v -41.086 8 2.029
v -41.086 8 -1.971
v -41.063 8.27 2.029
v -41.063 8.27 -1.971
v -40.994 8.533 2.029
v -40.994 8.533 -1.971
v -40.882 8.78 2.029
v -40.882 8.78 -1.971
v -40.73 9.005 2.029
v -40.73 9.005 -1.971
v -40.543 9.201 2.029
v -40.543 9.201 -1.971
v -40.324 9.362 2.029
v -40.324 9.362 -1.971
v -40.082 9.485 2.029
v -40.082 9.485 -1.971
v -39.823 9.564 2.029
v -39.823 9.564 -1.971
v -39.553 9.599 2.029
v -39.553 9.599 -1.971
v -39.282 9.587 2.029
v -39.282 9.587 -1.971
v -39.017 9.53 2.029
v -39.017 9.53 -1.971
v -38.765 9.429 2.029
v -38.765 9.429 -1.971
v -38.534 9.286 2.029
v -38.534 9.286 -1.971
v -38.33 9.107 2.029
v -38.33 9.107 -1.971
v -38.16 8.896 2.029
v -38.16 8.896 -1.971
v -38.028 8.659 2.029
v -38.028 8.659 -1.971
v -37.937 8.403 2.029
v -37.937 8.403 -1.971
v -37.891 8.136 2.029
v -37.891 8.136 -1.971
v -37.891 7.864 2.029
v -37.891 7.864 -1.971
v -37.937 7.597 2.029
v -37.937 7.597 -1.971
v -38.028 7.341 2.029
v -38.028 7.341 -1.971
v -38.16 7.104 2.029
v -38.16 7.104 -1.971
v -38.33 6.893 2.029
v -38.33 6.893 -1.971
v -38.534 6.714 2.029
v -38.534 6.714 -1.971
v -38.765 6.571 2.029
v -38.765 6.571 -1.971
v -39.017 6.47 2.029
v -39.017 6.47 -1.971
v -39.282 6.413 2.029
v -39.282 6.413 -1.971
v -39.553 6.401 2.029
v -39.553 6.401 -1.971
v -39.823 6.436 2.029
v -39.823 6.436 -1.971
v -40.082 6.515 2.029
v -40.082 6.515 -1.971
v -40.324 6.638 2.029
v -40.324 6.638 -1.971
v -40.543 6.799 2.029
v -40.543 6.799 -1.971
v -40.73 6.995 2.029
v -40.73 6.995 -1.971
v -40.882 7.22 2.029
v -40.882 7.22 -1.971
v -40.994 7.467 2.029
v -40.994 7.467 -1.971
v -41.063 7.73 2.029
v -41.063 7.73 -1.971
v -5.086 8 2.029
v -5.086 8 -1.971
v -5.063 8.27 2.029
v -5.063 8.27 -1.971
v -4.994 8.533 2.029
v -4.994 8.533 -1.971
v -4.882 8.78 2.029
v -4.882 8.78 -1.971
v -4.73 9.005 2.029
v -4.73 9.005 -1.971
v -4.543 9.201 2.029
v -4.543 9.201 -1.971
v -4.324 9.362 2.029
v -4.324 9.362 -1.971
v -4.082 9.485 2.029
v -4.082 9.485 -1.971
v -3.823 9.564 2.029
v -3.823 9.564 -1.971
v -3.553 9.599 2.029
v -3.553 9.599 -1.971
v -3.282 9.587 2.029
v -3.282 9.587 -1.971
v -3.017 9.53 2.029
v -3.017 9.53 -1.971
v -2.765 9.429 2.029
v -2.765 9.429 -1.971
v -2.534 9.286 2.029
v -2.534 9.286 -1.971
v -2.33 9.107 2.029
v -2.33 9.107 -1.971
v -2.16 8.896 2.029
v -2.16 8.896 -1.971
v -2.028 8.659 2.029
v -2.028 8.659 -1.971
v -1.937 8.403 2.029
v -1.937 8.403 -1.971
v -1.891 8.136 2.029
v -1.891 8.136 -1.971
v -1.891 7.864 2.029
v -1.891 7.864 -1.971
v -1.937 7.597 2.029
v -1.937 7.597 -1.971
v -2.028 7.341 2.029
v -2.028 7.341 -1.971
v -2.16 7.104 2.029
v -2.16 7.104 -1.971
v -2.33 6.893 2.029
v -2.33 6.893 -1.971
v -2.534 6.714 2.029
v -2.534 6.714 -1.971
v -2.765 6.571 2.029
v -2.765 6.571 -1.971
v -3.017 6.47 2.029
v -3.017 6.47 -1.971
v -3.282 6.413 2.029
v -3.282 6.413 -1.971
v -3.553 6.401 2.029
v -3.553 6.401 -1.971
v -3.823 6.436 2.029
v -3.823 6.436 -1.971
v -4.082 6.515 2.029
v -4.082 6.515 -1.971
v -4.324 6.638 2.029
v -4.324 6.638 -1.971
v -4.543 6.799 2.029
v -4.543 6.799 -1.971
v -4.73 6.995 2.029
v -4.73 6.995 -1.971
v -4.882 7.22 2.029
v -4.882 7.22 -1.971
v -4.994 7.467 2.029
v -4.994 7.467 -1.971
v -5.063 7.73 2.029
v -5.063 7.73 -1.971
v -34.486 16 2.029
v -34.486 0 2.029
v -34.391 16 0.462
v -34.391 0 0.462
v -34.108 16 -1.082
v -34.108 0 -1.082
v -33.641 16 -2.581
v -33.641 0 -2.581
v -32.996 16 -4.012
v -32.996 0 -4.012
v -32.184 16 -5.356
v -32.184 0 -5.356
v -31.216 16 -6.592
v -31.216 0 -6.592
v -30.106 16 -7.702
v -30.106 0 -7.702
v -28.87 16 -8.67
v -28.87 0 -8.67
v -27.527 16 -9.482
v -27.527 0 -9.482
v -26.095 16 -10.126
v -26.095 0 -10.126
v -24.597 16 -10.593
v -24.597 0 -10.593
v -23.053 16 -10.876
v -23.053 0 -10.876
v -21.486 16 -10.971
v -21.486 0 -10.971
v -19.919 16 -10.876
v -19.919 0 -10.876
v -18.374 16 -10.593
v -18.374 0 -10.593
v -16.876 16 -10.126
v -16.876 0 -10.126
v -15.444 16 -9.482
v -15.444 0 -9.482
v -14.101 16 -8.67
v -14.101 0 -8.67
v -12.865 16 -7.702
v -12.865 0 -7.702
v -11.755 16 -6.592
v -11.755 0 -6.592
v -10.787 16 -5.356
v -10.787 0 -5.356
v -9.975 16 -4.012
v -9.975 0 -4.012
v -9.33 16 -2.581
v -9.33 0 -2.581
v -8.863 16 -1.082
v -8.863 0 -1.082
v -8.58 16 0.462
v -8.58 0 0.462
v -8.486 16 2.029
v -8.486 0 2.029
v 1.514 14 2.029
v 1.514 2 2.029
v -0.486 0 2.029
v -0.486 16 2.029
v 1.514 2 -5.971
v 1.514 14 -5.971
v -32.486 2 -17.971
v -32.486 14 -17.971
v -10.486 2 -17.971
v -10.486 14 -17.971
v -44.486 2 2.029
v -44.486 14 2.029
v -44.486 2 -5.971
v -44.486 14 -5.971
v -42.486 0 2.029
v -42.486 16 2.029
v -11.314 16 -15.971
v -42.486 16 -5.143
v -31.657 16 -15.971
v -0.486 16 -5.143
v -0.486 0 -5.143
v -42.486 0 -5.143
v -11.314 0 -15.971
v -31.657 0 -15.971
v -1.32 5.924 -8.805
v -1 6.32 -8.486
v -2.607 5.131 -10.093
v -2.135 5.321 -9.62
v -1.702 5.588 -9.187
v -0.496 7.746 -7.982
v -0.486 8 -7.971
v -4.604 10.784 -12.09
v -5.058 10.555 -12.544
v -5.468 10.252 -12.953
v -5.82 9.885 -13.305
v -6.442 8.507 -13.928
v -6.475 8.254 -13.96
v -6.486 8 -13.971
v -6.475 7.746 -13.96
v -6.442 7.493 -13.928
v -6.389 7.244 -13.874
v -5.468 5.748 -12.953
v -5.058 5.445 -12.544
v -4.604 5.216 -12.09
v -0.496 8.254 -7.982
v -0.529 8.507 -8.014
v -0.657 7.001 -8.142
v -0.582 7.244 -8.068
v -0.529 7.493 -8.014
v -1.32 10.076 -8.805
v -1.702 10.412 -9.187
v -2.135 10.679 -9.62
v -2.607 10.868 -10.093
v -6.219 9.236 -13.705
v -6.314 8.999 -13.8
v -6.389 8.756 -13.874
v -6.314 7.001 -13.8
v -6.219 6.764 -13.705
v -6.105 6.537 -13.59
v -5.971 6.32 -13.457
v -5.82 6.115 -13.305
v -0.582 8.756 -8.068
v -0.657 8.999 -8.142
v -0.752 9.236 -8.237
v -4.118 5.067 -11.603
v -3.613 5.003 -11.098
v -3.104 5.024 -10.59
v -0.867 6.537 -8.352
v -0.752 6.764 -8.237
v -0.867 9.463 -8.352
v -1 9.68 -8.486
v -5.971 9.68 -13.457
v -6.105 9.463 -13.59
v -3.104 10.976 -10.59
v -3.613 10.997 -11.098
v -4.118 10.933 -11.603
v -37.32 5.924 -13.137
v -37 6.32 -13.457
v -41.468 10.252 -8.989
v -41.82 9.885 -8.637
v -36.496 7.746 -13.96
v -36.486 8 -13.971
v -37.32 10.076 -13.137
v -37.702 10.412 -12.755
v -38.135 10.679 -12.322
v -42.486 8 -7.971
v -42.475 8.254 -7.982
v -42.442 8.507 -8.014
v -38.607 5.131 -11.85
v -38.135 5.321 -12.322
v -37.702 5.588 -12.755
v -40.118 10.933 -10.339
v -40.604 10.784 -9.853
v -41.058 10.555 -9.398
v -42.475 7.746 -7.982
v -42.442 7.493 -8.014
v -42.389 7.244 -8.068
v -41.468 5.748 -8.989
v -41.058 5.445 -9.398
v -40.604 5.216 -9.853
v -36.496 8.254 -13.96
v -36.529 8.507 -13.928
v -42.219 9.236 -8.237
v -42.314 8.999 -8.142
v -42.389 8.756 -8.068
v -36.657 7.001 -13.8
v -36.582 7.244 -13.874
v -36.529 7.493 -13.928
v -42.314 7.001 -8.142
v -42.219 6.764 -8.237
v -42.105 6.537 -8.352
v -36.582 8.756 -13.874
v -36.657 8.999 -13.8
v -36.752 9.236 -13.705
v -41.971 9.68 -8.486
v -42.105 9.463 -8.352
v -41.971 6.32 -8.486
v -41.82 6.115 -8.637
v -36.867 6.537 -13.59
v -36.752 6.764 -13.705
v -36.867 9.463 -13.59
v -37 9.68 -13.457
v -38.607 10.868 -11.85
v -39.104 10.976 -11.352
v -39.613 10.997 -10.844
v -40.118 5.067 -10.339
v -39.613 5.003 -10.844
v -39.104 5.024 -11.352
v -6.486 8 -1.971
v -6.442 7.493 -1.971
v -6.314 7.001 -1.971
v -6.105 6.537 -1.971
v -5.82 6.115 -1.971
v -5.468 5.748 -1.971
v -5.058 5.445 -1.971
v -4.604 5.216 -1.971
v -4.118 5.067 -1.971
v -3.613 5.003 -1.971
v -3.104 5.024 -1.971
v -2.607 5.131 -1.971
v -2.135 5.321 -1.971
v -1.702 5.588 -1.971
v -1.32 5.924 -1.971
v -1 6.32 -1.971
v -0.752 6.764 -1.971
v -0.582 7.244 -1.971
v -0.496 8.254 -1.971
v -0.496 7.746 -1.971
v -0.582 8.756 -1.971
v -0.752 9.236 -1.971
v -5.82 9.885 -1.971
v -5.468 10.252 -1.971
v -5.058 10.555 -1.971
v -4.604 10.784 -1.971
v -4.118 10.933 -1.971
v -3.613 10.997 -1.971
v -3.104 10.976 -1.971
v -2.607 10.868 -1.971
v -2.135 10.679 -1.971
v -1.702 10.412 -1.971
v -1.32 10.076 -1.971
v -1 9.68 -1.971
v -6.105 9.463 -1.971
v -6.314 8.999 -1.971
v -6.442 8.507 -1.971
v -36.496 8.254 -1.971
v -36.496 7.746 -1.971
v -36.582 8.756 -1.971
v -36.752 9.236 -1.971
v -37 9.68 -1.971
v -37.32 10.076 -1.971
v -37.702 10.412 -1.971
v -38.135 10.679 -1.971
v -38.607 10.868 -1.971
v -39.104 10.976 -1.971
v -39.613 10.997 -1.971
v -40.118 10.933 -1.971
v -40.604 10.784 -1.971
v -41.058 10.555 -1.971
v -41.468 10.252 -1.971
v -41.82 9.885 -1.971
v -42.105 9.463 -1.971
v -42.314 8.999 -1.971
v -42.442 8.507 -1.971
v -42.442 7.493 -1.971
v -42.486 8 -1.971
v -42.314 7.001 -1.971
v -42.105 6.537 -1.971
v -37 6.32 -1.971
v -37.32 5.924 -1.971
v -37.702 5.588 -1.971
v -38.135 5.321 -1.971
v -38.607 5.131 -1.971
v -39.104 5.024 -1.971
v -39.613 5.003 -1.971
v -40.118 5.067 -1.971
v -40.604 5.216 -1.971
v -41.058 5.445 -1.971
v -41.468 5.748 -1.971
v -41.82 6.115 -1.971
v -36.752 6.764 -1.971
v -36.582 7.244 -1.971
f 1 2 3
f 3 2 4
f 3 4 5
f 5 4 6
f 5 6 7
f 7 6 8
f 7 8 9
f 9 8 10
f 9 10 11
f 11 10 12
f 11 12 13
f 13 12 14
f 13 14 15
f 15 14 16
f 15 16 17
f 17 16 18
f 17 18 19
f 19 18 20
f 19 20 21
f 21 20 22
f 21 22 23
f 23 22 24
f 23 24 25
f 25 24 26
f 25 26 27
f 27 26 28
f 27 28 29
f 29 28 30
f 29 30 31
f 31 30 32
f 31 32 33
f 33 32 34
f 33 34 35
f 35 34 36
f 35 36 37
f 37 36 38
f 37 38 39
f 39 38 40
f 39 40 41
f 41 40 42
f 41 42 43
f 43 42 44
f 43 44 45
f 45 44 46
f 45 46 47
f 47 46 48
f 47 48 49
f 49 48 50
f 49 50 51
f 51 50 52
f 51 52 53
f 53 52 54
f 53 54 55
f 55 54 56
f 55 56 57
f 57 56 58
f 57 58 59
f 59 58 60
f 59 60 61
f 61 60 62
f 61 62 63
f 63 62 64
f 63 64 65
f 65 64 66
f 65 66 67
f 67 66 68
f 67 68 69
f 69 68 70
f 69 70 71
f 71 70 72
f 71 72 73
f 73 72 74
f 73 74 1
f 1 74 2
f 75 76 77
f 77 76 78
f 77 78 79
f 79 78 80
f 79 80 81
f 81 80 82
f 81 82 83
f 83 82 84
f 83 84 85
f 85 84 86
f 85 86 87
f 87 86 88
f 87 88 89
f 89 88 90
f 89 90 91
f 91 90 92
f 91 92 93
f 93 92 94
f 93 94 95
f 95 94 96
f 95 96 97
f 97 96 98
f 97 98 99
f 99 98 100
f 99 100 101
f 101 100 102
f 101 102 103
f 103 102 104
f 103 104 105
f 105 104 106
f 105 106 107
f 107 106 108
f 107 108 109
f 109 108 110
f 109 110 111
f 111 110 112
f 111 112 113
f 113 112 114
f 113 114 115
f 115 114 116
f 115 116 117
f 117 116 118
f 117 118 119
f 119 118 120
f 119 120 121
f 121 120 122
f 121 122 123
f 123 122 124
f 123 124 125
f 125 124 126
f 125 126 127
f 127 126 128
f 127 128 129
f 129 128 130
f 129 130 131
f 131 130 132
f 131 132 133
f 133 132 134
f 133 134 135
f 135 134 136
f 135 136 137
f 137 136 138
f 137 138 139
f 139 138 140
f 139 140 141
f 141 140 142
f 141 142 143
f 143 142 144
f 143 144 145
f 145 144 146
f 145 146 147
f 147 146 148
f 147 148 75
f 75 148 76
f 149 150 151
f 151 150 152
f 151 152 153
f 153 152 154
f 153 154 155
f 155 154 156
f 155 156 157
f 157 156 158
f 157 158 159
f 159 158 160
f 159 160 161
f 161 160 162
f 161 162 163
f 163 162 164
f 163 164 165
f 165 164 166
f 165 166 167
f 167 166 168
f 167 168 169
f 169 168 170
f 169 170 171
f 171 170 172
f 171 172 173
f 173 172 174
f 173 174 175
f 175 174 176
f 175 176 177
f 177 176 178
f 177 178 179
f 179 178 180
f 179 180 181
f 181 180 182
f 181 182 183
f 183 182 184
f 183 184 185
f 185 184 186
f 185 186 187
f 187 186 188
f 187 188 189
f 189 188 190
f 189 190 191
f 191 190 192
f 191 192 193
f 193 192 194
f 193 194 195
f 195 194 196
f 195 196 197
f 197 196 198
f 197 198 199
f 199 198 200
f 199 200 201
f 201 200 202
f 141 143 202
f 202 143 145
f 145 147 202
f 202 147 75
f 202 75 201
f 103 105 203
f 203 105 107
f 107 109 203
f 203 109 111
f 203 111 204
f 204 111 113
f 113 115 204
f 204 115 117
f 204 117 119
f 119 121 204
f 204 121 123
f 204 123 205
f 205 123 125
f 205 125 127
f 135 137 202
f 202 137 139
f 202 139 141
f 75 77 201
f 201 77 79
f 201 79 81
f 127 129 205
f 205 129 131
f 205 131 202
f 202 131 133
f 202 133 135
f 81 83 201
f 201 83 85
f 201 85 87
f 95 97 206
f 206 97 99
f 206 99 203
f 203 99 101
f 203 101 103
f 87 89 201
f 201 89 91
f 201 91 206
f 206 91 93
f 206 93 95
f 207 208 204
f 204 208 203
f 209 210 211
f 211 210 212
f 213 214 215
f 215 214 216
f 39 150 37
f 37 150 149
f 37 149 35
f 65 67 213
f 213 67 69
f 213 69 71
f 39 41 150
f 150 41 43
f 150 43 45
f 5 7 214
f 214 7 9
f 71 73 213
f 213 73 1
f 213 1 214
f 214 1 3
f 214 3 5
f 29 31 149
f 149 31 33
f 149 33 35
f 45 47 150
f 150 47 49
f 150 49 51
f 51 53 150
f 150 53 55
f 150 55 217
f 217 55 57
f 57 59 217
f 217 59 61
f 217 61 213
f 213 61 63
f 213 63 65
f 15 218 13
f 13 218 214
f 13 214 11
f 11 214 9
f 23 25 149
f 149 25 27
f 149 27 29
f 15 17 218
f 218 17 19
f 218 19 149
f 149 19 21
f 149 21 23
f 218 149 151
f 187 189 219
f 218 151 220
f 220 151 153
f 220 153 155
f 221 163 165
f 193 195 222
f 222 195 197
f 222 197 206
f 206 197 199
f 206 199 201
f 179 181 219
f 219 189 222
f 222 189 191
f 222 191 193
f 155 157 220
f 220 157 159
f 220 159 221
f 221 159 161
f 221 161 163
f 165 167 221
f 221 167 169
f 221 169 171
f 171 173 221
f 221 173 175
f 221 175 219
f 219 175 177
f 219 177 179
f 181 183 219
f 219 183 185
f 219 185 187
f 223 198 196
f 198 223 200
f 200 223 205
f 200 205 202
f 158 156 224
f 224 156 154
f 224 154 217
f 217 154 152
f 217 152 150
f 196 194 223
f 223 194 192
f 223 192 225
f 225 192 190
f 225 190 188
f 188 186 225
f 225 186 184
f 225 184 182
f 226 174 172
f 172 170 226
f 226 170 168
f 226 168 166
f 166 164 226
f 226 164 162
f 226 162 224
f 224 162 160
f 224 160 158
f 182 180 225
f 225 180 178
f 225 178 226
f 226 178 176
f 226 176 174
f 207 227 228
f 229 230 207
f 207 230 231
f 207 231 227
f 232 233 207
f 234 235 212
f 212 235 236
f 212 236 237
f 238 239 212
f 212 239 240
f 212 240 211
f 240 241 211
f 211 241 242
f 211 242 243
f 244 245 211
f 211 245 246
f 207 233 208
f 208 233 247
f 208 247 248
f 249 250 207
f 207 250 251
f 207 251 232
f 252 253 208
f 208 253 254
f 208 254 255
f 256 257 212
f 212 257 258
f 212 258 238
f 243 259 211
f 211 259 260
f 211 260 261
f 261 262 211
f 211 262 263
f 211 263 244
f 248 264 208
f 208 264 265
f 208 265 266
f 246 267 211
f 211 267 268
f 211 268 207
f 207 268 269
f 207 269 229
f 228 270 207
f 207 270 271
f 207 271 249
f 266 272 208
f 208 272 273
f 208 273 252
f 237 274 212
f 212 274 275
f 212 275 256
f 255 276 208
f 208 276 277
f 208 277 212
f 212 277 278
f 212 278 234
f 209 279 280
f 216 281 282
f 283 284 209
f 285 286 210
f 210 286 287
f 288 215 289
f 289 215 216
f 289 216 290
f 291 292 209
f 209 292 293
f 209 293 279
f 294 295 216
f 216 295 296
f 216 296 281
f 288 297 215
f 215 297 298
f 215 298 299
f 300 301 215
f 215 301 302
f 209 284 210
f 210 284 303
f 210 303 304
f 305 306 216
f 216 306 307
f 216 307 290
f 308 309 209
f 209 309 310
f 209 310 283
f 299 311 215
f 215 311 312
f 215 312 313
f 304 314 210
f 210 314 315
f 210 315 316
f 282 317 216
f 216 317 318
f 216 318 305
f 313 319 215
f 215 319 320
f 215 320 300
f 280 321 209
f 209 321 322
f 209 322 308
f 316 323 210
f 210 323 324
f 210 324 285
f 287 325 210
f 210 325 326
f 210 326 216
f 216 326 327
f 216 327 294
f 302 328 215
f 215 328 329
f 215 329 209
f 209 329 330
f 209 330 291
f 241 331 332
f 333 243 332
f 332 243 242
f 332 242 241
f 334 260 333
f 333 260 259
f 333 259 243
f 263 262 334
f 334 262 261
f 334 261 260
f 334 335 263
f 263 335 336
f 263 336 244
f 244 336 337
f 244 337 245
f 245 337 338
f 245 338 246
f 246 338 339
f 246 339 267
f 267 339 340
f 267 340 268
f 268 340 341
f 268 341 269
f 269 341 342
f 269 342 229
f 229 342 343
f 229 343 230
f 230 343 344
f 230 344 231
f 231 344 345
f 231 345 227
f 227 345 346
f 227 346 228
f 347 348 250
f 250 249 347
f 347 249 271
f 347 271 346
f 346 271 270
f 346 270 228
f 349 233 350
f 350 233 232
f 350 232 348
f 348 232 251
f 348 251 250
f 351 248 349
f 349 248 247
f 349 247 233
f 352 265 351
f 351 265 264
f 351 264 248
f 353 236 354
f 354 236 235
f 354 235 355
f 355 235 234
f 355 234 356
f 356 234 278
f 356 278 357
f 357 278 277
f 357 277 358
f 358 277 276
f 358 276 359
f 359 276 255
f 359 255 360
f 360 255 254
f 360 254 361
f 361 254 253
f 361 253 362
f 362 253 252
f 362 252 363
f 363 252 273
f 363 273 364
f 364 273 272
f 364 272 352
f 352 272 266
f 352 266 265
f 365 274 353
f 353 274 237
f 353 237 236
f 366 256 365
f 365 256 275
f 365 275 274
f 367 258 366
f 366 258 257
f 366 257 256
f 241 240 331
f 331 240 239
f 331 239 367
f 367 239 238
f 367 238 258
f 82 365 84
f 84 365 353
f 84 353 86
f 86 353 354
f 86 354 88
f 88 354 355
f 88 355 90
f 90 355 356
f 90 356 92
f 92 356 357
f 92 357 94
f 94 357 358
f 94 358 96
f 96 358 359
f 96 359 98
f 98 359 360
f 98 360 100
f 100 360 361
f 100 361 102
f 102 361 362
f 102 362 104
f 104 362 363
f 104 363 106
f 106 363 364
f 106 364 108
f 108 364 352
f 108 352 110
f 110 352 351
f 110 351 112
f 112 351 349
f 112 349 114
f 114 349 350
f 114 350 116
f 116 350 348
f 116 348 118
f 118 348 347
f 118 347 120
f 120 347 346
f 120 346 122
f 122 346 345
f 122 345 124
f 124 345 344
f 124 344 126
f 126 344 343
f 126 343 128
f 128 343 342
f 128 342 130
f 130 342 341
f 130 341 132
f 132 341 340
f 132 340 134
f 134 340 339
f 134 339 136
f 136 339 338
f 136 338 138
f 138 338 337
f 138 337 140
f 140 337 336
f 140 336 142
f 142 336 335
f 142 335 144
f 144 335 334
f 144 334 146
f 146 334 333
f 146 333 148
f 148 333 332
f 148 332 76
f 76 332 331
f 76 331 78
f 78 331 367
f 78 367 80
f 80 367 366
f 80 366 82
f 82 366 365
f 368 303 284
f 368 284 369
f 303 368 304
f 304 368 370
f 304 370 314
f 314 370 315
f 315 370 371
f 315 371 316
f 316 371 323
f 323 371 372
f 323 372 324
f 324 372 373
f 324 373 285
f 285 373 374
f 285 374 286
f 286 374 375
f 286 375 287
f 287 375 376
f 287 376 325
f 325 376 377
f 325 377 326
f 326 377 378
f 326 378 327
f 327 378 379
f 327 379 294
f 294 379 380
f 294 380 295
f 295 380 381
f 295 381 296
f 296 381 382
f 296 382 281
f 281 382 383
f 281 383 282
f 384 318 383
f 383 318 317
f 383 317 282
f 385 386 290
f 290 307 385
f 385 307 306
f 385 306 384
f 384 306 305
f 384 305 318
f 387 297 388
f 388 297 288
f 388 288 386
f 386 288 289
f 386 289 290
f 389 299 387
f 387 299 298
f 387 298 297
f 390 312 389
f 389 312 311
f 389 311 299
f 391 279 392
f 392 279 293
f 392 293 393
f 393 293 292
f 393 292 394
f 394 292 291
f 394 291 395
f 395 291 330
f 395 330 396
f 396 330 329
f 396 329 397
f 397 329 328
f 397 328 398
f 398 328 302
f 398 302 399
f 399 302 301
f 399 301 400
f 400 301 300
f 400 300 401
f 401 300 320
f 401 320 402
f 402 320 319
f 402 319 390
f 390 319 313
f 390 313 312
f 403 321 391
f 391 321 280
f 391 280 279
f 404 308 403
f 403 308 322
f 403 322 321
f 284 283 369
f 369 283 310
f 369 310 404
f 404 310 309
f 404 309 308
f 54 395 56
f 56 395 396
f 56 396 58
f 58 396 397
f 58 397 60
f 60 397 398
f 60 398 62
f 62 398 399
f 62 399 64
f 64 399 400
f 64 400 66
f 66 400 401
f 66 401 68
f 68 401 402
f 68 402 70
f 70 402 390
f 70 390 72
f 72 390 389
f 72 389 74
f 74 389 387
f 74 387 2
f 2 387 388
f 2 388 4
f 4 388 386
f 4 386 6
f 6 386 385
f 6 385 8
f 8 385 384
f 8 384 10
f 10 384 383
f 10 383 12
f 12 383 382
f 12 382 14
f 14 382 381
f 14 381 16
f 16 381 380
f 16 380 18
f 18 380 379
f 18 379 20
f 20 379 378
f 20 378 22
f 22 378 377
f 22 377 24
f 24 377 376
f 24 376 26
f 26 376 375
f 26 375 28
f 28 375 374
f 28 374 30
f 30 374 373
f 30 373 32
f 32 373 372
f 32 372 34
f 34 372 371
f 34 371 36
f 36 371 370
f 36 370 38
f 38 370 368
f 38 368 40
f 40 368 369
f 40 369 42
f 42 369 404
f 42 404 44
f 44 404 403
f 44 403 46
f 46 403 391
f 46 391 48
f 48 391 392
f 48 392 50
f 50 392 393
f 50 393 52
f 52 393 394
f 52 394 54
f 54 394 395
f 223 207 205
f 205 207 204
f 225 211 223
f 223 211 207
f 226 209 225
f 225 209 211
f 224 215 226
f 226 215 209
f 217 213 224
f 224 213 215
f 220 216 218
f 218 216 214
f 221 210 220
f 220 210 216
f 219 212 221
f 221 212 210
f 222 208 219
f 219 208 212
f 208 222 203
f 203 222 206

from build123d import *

# Parameters (mm, degrees)
BOSS_EXTRUDE1_DEPTH = 16
CHAMFER1_SIZE       = 12
SKETCH2_R           = 1.6
CUT_EXTRUDE1_DEPTH  = 20
SKETCH2_4_R         = 3
SKETCH2_4_R_2       = 1.6
CUT_EXTRUDE2_DEPTH  = 16
CHAMFER2_SIZE       = 2


with BuildPart() as part:
    # Sketch1 → Boss-Extrude1 (new body)
    with BuildSketch(Plane(origin=(0, 0, 0), x_dir=(1, 0, 0), z_dir=(0, 1, 0))):
        with BuildLine():
            Line((-34.485549133, -2.028901734), (-44.485549133, -2.028901734))
            Line((-44.485549133, -2.028901734), (-44.485549133, 17.971098266))
            Line((-44.485549133, 17.971098266), (1.514450867, 17.971098266))
            Line((1.514450867, 17.971098266), (1.514450867, -2.028901734))
            Line((1.514450867, -2.028901734), (-8.485549133, -2.028901734))
            ThreePointArc((-8.485549133, -2.028901734), (-21.485549133, 10.971098266), (-34.485549133, -2.028901734))
        make_face()
    extrude(amount=BOSS_EXTRUDE1_DEPTH)

    # Chamfer1
    chamfer1_edges = [part.edges().sort_by_distance(p)[0] for p in [
        (-44.485549133, 8, -17.971098266),
        (1.514450867, 8, -17.971098266),
    ]]
    chamfer(chamfer1_edges, length=CHAMFER1_SIZE)

    # Sketch2 → Cut-Extrude1 (cut)
    with BuildSketch(Plane(origin=(0, 0, -17.971098266), x_dir=(-1, 0, 0), z_dir=(0, 0, -1))):
        with Locations((39.485549133, 8)):
            Circle(SKETCH2_R)
        with Locations((3.485549133, 8)):
            Circle(SKETCH2_R)
    extrude(amount=-CUT_EXTRUDE1_DEPTH, mode=Mode.SUBTRACT)

    # Sketch2<4> → Cut-Extrude2 (cut)
    # profile 1 of 2: a face of its own
    with BuildSketch(Plane(origin=(0, 0, -17.971098266), x_dir=(-1, 0, 0), z_dir=(0, 0, -1))):
        with Locations((39.485549133, 8)):
            Circle(SKETCH2_4_R)
        with Locations((39.485549133, 8)):
            Circle(SKETCH2_4_R_2, mode=Mode.SUBTRACT)
    # profile 2 of 2: a face of its own
    with BuildSketch(Plane(origin=(0, 0, -17.971098266), x_dir=(-1, 0, 0), z_dir=(0, 0, -1))):
        with Locations((3.485549133, 8)):
            Circle(SKETCH2_4_R)
        with Locations((3.485549133, 8)):
            Circle(SKETCH2_4_R_2, mode=Mode.SUBTRACT)
    extrude(amount=-CUT_EXTRUDE2_DEPTH, mode=Mode.SUBTRACT)

    # Chamfer2
    chamfer2_edges = [part.edges().sort_by_distance(p)[0] for p in [
        (1.514450867, 16, -1.971098266),
        (-21.485549133, 0, -17.971098266),
        (-21.485549133, 16, -17.971098266),
        (-44.485549133, 0, -1.971098266),
        (-38.485549133, 0, -11.971098266),
        (-4.485549133, 0, -11.971098266),
        (-44.485549133, 16, -1.971098266),
        (-38.485549133, 16, -11.971098266),
        (-4.485549133, 16, -11.971098266),
        (1.514450867, 0, -1.971098266),
    ]]
    chamfer(chamfer2_edges, length=CHAMFER2_SIZE)


solid = part.part
